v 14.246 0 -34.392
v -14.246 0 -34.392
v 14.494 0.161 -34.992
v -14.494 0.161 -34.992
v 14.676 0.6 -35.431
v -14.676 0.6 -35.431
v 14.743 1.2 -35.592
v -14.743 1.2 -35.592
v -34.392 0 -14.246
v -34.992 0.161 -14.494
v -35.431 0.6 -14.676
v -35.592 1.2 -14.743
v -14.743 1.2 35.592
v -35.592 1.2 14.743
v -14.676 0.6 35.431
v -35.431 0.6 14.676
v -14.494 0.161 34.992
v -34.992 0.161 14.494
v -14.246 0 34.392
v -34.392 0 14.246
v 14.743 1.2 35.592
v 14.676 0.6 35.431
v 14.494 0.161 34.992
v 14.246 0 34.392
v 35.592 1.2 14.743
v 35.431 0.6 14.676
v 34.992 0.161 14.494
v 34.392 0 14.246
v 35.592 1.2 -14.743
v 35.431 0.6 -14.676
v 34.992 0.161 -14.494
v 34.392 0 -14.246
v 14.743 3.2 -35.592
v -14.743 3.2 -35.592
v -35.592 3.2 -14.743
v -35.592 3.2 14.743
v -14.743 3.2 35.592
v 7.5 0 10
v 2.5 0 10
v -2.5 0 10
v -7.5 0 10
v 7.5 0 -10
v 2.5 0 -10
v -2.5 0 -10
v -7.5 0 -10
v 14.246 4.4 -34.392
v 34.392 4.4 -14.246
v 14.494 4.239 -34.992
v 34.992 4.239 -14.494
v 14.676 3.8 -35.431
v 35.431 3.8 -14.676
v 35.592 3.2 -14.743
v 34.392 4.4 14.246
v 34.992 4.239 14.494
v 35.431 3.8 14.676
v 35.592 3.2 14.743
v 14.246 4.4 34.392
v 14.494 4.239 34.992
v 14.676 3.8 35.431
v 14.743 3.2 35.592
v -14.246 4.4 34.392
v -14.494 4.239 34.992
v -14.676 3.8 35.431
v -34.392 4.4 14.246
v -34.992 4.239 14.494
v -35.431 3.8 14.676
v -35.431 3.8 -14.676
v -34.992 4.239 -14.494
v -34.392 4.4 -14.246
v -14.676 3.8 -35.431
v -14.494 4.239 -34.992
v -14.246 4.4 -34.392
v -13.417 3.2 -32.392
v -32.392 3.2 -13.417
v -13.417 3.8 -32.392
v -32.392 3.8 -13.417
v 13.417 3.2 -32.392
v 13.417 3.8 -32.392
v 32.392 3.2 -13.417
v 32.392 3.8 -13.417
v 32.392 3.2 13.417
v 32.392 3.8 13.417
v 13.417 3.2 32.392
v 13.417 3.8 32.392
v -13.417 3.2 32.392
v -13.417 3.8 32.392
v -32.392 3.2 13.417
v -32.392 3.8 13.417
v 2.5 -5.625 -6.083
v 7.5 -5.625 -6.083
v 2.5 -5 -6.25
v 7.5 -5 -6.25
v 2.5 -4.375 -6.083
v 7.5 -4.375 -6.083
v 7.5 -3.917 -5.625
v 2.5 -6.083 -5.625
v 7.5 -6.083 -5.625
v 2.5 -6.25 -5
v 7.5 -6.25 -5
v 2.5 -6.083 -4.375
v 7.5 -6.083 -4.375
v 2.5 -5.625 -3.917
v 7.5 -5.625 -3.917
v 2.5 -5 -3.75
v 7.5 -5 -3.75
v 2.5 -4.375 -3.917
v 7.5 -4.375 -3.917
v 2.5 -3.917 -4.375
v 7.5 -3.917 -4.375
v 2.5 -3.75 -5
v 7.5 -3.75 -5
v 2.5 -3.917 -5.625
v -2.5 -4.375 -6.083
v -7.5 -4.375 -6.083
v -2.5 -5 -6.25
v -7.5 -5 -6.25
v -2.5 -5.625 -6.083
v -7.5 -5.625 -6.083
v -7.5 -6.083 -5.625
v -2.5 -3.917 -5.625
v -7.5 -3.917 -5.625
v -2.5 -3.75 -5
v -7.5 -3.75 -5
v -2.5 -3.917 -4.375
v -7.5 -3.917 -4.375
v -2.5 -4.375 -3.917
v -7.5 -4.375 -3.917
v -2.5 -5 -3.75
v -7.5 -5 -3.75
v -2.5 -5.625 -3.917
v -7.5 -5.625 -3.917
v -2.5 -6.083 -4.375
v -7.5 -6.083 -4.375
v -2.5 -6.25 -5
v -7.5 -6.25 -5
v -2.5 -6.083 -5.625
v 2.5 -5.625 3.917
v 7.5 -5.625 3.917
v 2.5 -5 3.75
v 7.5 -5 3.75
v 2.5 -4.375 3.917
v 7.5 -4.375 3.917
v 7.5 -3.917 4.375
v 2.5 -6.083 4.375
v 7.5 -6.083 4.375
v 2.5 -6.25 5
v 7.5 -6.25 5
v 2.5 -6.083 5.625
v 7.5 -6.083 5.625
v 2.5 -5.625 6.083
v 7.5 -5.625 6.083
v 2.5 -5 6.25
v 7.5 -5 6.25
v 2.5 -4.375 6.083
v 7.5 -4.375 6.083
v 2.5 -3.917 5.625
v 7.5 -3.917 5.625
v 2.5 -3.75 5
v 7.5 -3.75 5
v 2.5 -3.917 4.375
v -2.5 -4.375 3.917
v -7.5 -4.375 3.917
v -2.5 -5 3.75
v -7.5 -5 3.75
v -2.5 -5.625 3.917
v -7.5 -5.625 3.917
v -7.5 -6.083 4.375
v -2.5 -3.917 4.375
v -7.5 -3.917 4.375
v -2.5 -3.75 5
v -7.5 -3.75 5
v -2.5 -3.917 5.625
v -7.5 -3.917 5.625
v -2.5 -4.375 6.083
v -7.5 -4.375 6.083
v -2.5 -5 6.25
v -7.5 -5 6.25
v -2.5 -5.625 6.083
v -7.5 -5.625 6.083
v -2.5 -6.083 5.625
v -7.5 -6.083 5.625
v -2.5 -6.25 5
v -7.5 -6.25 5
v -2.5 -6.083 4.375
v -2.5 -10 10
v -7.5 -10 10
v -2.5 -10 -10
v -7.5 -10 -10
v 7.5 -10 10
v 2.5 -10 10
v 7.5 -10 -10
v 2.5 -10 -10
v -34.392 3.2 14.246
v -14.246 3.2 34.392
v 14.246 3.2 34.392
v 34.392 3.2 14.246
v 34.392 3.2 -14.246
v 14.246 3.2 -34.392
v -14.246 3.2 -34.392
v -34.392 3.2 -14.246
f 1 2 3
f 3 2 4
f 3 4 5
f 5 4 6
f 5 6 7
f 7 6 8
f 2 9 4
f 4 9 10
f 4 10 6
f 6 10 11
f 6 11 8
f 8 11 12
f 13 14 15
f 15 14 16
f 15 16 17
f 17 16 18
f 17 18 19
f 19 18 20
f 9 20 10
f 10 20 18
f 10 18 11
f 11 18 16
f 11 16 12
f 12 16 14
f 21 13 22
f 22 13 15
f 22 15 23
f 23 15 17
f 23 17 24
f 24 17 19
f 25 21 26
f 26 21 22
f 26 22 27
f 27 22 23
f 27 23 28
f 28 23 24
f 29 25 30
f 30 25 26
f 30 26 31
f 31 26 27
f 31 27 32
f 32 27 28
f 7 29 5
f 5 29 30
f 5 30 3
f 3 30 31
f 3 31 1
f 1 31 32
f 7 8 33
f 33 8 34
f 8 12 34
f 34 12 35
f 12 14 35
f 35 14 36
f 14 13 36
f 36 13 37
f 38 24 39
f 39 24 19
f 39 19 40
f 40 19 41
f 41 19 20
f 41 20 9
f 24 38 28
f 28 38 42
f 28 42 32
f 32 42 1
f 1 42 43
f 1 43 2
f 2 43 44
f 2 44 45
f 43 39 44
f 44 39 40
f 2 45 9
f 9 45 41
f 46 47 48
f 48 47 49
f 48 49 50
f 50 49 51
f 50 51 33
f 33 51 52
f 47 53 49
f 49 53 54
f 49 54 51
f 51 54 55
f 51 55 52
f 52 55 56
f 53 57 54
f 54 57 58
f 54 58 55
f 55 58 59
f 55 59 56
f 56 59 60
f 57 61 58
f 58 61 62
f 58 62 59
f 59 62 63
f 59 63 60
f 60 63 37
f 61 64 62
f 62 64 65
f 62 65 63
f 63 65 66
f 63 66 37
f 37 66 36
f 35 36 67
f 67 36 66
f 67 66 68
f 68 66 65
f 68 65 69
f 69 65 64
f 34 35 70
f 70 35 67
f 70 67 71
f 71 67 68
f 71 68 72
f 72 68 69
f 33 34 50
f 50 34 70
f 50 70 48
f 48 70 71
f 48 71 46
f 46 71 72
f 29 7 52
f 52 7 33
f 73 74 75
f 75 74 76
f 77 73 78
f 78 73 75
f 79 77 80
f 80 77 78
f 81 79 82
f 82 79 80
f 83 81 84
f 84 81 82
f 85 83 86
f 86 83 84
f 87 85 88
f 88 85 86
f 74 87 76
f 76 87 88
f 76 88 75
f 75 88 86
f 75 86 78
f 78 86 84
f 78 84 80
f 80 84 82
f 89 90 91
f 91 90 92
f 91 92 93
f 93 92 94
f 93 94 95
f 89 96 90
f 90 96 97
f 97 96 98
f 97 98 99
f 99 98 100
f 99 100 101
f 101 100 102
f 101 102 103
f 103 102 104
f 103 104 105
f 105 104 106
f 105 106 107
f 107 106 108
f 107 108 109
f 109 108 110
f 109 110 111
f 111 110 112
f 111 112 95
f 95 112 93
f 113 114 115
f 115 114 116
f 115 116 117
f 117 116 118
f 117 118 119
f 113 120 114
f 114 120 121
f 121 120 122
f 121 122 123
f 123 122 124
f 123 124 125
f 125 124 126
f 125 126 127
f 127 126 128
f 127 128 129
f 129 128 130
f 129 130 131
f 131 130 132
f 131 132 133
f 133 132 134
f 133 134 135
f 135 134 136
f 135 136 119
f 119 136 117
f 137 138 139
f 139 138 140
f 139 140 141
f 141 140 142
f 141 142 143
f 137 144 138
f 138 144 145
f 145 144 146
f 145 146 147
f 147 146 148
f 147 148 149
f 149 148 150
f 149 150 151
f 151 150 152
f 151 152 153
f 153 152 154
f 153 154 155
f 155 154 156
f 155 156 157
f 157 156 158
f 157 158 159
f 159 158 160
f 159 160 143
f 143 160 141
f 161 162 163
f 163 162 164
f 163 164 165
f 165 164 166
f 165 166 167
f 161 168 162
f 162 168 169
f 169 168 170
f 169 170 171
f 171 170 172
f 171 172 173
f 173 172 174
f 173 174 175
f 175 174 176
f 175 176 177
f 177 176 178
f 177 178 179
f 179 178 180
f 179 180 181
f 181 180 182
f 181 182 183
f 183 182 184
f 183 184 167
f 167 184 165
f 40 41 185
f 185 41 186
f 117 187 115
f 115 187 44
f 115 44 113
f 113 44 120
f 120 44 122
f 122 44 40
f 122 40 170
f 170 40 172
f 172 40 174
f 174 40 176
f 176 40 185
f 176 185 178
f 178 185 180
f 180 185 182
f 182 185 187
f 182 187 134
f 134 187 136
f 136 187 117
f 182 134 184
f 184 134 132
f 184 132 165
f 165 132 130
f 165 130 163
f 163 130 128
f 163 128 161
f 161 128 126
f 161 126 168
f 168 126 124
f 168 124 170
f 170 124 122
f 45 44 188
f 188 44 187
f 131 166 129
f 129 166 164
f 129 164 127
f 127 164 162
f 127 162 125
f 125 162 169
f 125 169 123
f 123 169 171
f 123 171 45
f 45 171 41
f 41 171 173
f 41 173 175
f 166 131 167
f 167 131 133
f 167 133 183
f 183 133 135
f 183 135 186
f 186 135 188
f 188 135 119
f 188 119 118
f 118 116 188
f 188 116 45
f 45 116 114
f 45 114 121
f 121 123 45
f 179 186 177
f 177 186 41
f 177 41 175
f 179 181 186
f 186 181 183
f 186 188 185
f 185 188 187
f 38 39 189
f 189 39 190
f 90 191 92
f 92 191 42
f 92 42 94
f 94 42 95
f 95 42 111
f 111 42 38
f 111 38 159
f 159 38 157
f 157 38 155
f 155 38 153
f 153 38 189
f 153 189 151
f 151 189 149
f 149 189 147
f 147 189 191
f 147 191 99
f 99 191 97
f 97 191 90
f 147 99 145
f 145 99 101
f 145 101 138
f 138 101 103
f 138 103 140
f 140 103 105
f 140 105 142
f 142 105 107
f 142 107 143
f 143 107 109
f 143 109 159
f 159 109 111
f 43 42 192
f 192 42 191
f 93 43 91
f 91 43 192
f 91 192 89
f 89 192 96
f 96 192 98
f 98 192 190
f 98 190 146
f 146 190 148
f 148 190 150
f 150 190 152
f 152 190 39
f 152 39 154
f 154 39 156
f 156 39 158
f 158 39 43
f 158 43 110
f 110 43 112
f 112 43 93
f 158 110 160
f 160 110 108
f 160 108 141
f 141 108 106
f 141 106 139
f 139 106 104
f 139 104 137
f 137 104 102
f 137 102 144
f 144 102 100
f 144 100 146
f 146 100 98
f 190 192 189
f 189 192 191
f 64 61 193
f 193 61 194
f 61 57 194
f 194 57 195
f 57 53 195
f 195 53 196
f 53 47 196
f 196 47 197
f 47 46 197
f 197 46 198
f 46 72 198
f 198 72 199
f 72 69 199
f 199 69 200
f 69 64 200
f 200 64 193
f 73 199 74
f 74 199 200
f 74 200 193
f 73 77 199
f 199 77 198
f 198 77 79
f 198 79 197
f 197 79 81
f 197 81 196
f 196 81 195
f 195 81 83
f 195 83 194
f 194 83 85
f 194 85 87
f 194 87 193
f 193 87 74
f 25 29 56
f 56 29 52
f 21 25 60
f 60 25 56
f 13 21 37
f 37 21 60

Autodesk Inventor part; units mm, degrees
ref_plane "YZ Plane" through (0, 0, 0) normal (1, 0, 0) x (0, 1, 0)
ref_plane "XZ Plane" through (0, 0, 0) normal (0, 1, 0) x (-1, 0, 0)
ref_plane "XY Plane" through (0, 0, 0) normal (0, 0, 1) x (1, 0, 0)
sketch "스케치3" plane through (0, 0, 0) normal (0, 1, 0) x (-1, 0, 0)
  line L0 (35.5919, -14.7426) -> (14.7426, -35.5919)
  line L1 (14.7426, -35.5919) -> (-14.7426, -35.5919)
  line L2 (-14.7426, -35.5919) -> (-35.5919, -14.7426)
  line L3 (-35.5919, -14.7426) -> (-35.5919, 14.7426)
  line L4 (-35.5919, 14.7426) -> (-14.7426, 35.5919)
  line L5 (-14.7426, 35.5919) -> (14.7426, 35.5919)
  line L6 (14.7426, 35.5919) -> (35.5919, 14.7426)
  line L7 (35.5919, 14.7426) -> (35.5919, -14.7426)
  line L8 (13.5, -32.5919) -> (-13.5, -32.5919)
  line L9 (-13.5, -32.5919) -> (-32.5919, -13.5)
  line L10 (-32.5919, -13.5) -> (-32.5919, 13.5)
  line L11 (-32.5919, 13.5) -> (-13.5, 32.5919)
  line L12 (-13.5, 32.5919) -> (13.5, 32.5919)
  line L13 (13.5, 32.5919) -> (32.5919, 13.5)
  line L14 (32.5919, 13.5) -> (32.5919, -13.5)
  line L15 (32.5919, -13.5) -> (13.5, -32.5919)
  point P0 (0, 0)
  point P1 (0, 0)
  point P2 (0, 0)
  point P3 (0, 0)
  dimension "d66" = 27
  dimension "d67" = 3
extrude "돌출2" add sketch "스케치3" along normal blind 4.4 contours L0 L1 L2 L3 L4 L5 L6 L7 | L8 L9 L10 L11 L12 L13 L14 L15
sketch "스케치4" plane through (0, 4.4, 0) normal (0, 1, 0) x (1, 0, 0)
  line L0 (13.5, -32.5919) -> (-13.5, -32.5919)
  line L1 (-13.5, -32.5919) -> (-32.5919, -13.5)
  line L2 (-32.5919, -13.5) -> (-32.5919, 13.5)
  line L3 (-32.5919, 13.5) -> (-13.5, 32.5919)
  line L4 (-13.5, 32.5919) -> (13.5, 32.5919)
  line L5 (13.5, 32.5919) -> (32.5919, 13.5)
  line L6 (32.5919, 13.5) -> (32.5919, -13.5)
  line L7 (32.5919, -13.5) -> (13.5, -32.5919)
  line L8 (-14.2456, 34.3919) -> (14.2456, 34.3919)
  line L9 (14.2456, 34.3919) -> (34.3919, 14.2456)
  line L10 (34.3919, 14.2456) -> (34.3919, -14.2456)
  line L11 (34.3919, -14.2456) -> (14.2456, -34.3919)
  line L12 (14.2456, -34.3919) -> (-14.2456, -34.3919)
  line L13 (-14.2456, -34.3919) -> (-34.3919, -14.2456)
  line L14 (-34.3919, -14.2456) -> (-34.3919, 14.2456)
  line L15 (-34.3919, 14.2456) -> (-14.2456, 34.3919)
  line L16 (-13.4172, 32.3919) -> (13.4172, 32.3919)
  line L17 (13.4172, 32.3919) -> (32.3919, 13.4172)
  line L18 (32.3919, 13.4172) -> (32.3919, -13.4172)
  line L19 (32.3919, -13.4172) -> (13.4172, -32.3919)
  line L20 (13.4172, -32.3919) -> (-13.4172, -32.3919)
  line L21 (-13.4172, -32.3919) -> (-32.3919, -13.4172)
  line L22 (-32.3919, -13.4172) -> (-32.3919, 13.4172)
  line L23 (-32.3919, 13.4172) -> (-13.4172, 32.3919)
  point P0 (0, 0)
  point P1 (0, 0)
  point P2 (0, 0)
  point P3 (0, 0)
  dimension "d7" = 27
  dimension "d68" = 1.8
  dimension "d69" = 0.2
extrude "돌출3" cut sketch "스케치4" against normal blind 1.2 contours L0 L1 L2 L3 L4 L5 L6 L7 | L8 L9 L10 L11 L12 L13 L14 L15 | L16 L17 L18 L19 L20 L21 L22 L23
sketch "스케치9" plane through (0, 0, 0) normal (0, -1, 0) x (1, 0, 0)
  line L0 (7.5, 10) -> (2.5, 10)
  line L1 (2.5, 10) -> (2.5, -10)
  line L2 (2.5, -10) -> (7.5, -10)
  line L3 (7.5, -10) -> (7.5, 10)
  line L4 (7.5, 10) -> (2.5, -10) construction
  line L5 (2.5, 10) -> (7.5, -10) construction
  line L6 (-2.5, 10) -> (-7.5, 10)
  line L7 (-7.5, 10) -> (-7.5, -10)
  line L8 (-7.5, -10) -> (-2.5, -10)
  line L9 (-2.5, 10) -> (-7.5, -10) construction
  line L10 (-7.5, 10) -> (-2.5, -10) construction
  line L11 (-2.5, -10) -> (-2.5, 10)
  point P0 (0, 0)
  point P1 (5, 0)
  point P2 (-5, 0)
  dimension "d42" = 20
  dimension "d43" = 5
  dimension "d44" = 2.5
  dimension "d47" = 10
extrude "돌출8" add sketch "스케치9" along normal blind 10
sketch "스케치10" plane through (-7.5, 0, -10) normal (-1, 0, 0) x (0, 0, 1)
  circle A0 centre (15, -5) radius 1.25
  line L0 (19.9591, 0) -> (0.0886, 0)
  line L1 (24.7426, 0) -> (-4.7426, 0) projected
  circle A1 centre (5, -5) radius 1.25
  line L2 (20, 0) -> (20, -10) projected
  point P0 (10, 0)
  dimension "d54" = 2.5
  dimension "d57" = 10
  dimension "d62" = 5
  dimension "d63" = 5
extrude "돌출9" cut sketch "스케치10" against normal blind 20
sketch "스케치11" plane through (0, 3.2, 0) normal (0, 1, 0) x (1, 0, 0)
  line L0 (-13.4172, 32.3919) -> (13.4172, 32.3919)
  line L1 (13.4172, 32.3919) -> (32.3919, 13.4172)
  line L2 (32.3919, 13.4172) -> (32.3919, -13.4172)
  line L3 (32.3919, -13.4172) -> (13.4172, -32.3919)
  line L4 (13.4172, -32.3919) -> (-13.4172, -32.3919)
  line L5 (-13.4172, -32.3919) -> (-32.3919, -13.4172)
  line L6 (-32.3919, -13.4172) -> (-32.3919, 13.4172)
  line L7 (-32.3919, 13.4172) -> (-13.4172, 32.3919)
  line L8 (-14.2456, 34.3919) -> (14.2456, 34.3919) projected
  line L9 (-12.1745, 29.3919) -> (12.1745, 29.3919)
  line L10 (12.1745, 29.3919) -> (29.3919, 12.1745)
  line L11 (29.3919, 12.1745) -> (29.3919, -12.1745)
  line L12 (29.3919, -12.1745) -> (12.1745, -29.3919)
  line L13 (12.1745, -29.3919) -> (-12.1745, -29.3919)
  line L14 (-12.1745, -29.3919) -> (-29.3919, -12.1745)
  line L15 (-29.3919, -12.1745) -> (-29.3919, 12.1745)
  line L16 (-29.3919, 12.1745) -> (-12.1745, 29.3919)
  point P0 (0, 0)
  point P1 (0, 0)
  point P2 (0, 0)
  dimension "d70" = 2
  dimension "d71" = 3
extrude "돌출10" add sketch "스케치11" along normal blind 0.6 contours L0 L1 L2 L3 L4 L5 L6 L7 | L9 L10 L11 L12 L13 L14 L15 L16
fillet "모깎기1" radius 1.2 16 edges at (-25.1673, 4.4, 25.1673) (0, 4.4, 35.5919) (25.1673, 4.4, 25.1673) (35.5919, 4.4, 0) (25.1673, 4.4, -25.1673) (0, 4.4, -35.5919) (-25.1673, 4.4, -25.1673) (-35.5919, 4.4, 0) (-25.1673, 0, 25.1673) (0, 0, 35.5919) (25.1673, 0, 25.1673) (35.5919, 0, 0) (25.1673, 0, -25.1673) (0, 0, -35.5919) (-25.1673, 0, -25.1673) (-35.5919, 0, 0)
properties part number "OV-PAM_bottom_2"
